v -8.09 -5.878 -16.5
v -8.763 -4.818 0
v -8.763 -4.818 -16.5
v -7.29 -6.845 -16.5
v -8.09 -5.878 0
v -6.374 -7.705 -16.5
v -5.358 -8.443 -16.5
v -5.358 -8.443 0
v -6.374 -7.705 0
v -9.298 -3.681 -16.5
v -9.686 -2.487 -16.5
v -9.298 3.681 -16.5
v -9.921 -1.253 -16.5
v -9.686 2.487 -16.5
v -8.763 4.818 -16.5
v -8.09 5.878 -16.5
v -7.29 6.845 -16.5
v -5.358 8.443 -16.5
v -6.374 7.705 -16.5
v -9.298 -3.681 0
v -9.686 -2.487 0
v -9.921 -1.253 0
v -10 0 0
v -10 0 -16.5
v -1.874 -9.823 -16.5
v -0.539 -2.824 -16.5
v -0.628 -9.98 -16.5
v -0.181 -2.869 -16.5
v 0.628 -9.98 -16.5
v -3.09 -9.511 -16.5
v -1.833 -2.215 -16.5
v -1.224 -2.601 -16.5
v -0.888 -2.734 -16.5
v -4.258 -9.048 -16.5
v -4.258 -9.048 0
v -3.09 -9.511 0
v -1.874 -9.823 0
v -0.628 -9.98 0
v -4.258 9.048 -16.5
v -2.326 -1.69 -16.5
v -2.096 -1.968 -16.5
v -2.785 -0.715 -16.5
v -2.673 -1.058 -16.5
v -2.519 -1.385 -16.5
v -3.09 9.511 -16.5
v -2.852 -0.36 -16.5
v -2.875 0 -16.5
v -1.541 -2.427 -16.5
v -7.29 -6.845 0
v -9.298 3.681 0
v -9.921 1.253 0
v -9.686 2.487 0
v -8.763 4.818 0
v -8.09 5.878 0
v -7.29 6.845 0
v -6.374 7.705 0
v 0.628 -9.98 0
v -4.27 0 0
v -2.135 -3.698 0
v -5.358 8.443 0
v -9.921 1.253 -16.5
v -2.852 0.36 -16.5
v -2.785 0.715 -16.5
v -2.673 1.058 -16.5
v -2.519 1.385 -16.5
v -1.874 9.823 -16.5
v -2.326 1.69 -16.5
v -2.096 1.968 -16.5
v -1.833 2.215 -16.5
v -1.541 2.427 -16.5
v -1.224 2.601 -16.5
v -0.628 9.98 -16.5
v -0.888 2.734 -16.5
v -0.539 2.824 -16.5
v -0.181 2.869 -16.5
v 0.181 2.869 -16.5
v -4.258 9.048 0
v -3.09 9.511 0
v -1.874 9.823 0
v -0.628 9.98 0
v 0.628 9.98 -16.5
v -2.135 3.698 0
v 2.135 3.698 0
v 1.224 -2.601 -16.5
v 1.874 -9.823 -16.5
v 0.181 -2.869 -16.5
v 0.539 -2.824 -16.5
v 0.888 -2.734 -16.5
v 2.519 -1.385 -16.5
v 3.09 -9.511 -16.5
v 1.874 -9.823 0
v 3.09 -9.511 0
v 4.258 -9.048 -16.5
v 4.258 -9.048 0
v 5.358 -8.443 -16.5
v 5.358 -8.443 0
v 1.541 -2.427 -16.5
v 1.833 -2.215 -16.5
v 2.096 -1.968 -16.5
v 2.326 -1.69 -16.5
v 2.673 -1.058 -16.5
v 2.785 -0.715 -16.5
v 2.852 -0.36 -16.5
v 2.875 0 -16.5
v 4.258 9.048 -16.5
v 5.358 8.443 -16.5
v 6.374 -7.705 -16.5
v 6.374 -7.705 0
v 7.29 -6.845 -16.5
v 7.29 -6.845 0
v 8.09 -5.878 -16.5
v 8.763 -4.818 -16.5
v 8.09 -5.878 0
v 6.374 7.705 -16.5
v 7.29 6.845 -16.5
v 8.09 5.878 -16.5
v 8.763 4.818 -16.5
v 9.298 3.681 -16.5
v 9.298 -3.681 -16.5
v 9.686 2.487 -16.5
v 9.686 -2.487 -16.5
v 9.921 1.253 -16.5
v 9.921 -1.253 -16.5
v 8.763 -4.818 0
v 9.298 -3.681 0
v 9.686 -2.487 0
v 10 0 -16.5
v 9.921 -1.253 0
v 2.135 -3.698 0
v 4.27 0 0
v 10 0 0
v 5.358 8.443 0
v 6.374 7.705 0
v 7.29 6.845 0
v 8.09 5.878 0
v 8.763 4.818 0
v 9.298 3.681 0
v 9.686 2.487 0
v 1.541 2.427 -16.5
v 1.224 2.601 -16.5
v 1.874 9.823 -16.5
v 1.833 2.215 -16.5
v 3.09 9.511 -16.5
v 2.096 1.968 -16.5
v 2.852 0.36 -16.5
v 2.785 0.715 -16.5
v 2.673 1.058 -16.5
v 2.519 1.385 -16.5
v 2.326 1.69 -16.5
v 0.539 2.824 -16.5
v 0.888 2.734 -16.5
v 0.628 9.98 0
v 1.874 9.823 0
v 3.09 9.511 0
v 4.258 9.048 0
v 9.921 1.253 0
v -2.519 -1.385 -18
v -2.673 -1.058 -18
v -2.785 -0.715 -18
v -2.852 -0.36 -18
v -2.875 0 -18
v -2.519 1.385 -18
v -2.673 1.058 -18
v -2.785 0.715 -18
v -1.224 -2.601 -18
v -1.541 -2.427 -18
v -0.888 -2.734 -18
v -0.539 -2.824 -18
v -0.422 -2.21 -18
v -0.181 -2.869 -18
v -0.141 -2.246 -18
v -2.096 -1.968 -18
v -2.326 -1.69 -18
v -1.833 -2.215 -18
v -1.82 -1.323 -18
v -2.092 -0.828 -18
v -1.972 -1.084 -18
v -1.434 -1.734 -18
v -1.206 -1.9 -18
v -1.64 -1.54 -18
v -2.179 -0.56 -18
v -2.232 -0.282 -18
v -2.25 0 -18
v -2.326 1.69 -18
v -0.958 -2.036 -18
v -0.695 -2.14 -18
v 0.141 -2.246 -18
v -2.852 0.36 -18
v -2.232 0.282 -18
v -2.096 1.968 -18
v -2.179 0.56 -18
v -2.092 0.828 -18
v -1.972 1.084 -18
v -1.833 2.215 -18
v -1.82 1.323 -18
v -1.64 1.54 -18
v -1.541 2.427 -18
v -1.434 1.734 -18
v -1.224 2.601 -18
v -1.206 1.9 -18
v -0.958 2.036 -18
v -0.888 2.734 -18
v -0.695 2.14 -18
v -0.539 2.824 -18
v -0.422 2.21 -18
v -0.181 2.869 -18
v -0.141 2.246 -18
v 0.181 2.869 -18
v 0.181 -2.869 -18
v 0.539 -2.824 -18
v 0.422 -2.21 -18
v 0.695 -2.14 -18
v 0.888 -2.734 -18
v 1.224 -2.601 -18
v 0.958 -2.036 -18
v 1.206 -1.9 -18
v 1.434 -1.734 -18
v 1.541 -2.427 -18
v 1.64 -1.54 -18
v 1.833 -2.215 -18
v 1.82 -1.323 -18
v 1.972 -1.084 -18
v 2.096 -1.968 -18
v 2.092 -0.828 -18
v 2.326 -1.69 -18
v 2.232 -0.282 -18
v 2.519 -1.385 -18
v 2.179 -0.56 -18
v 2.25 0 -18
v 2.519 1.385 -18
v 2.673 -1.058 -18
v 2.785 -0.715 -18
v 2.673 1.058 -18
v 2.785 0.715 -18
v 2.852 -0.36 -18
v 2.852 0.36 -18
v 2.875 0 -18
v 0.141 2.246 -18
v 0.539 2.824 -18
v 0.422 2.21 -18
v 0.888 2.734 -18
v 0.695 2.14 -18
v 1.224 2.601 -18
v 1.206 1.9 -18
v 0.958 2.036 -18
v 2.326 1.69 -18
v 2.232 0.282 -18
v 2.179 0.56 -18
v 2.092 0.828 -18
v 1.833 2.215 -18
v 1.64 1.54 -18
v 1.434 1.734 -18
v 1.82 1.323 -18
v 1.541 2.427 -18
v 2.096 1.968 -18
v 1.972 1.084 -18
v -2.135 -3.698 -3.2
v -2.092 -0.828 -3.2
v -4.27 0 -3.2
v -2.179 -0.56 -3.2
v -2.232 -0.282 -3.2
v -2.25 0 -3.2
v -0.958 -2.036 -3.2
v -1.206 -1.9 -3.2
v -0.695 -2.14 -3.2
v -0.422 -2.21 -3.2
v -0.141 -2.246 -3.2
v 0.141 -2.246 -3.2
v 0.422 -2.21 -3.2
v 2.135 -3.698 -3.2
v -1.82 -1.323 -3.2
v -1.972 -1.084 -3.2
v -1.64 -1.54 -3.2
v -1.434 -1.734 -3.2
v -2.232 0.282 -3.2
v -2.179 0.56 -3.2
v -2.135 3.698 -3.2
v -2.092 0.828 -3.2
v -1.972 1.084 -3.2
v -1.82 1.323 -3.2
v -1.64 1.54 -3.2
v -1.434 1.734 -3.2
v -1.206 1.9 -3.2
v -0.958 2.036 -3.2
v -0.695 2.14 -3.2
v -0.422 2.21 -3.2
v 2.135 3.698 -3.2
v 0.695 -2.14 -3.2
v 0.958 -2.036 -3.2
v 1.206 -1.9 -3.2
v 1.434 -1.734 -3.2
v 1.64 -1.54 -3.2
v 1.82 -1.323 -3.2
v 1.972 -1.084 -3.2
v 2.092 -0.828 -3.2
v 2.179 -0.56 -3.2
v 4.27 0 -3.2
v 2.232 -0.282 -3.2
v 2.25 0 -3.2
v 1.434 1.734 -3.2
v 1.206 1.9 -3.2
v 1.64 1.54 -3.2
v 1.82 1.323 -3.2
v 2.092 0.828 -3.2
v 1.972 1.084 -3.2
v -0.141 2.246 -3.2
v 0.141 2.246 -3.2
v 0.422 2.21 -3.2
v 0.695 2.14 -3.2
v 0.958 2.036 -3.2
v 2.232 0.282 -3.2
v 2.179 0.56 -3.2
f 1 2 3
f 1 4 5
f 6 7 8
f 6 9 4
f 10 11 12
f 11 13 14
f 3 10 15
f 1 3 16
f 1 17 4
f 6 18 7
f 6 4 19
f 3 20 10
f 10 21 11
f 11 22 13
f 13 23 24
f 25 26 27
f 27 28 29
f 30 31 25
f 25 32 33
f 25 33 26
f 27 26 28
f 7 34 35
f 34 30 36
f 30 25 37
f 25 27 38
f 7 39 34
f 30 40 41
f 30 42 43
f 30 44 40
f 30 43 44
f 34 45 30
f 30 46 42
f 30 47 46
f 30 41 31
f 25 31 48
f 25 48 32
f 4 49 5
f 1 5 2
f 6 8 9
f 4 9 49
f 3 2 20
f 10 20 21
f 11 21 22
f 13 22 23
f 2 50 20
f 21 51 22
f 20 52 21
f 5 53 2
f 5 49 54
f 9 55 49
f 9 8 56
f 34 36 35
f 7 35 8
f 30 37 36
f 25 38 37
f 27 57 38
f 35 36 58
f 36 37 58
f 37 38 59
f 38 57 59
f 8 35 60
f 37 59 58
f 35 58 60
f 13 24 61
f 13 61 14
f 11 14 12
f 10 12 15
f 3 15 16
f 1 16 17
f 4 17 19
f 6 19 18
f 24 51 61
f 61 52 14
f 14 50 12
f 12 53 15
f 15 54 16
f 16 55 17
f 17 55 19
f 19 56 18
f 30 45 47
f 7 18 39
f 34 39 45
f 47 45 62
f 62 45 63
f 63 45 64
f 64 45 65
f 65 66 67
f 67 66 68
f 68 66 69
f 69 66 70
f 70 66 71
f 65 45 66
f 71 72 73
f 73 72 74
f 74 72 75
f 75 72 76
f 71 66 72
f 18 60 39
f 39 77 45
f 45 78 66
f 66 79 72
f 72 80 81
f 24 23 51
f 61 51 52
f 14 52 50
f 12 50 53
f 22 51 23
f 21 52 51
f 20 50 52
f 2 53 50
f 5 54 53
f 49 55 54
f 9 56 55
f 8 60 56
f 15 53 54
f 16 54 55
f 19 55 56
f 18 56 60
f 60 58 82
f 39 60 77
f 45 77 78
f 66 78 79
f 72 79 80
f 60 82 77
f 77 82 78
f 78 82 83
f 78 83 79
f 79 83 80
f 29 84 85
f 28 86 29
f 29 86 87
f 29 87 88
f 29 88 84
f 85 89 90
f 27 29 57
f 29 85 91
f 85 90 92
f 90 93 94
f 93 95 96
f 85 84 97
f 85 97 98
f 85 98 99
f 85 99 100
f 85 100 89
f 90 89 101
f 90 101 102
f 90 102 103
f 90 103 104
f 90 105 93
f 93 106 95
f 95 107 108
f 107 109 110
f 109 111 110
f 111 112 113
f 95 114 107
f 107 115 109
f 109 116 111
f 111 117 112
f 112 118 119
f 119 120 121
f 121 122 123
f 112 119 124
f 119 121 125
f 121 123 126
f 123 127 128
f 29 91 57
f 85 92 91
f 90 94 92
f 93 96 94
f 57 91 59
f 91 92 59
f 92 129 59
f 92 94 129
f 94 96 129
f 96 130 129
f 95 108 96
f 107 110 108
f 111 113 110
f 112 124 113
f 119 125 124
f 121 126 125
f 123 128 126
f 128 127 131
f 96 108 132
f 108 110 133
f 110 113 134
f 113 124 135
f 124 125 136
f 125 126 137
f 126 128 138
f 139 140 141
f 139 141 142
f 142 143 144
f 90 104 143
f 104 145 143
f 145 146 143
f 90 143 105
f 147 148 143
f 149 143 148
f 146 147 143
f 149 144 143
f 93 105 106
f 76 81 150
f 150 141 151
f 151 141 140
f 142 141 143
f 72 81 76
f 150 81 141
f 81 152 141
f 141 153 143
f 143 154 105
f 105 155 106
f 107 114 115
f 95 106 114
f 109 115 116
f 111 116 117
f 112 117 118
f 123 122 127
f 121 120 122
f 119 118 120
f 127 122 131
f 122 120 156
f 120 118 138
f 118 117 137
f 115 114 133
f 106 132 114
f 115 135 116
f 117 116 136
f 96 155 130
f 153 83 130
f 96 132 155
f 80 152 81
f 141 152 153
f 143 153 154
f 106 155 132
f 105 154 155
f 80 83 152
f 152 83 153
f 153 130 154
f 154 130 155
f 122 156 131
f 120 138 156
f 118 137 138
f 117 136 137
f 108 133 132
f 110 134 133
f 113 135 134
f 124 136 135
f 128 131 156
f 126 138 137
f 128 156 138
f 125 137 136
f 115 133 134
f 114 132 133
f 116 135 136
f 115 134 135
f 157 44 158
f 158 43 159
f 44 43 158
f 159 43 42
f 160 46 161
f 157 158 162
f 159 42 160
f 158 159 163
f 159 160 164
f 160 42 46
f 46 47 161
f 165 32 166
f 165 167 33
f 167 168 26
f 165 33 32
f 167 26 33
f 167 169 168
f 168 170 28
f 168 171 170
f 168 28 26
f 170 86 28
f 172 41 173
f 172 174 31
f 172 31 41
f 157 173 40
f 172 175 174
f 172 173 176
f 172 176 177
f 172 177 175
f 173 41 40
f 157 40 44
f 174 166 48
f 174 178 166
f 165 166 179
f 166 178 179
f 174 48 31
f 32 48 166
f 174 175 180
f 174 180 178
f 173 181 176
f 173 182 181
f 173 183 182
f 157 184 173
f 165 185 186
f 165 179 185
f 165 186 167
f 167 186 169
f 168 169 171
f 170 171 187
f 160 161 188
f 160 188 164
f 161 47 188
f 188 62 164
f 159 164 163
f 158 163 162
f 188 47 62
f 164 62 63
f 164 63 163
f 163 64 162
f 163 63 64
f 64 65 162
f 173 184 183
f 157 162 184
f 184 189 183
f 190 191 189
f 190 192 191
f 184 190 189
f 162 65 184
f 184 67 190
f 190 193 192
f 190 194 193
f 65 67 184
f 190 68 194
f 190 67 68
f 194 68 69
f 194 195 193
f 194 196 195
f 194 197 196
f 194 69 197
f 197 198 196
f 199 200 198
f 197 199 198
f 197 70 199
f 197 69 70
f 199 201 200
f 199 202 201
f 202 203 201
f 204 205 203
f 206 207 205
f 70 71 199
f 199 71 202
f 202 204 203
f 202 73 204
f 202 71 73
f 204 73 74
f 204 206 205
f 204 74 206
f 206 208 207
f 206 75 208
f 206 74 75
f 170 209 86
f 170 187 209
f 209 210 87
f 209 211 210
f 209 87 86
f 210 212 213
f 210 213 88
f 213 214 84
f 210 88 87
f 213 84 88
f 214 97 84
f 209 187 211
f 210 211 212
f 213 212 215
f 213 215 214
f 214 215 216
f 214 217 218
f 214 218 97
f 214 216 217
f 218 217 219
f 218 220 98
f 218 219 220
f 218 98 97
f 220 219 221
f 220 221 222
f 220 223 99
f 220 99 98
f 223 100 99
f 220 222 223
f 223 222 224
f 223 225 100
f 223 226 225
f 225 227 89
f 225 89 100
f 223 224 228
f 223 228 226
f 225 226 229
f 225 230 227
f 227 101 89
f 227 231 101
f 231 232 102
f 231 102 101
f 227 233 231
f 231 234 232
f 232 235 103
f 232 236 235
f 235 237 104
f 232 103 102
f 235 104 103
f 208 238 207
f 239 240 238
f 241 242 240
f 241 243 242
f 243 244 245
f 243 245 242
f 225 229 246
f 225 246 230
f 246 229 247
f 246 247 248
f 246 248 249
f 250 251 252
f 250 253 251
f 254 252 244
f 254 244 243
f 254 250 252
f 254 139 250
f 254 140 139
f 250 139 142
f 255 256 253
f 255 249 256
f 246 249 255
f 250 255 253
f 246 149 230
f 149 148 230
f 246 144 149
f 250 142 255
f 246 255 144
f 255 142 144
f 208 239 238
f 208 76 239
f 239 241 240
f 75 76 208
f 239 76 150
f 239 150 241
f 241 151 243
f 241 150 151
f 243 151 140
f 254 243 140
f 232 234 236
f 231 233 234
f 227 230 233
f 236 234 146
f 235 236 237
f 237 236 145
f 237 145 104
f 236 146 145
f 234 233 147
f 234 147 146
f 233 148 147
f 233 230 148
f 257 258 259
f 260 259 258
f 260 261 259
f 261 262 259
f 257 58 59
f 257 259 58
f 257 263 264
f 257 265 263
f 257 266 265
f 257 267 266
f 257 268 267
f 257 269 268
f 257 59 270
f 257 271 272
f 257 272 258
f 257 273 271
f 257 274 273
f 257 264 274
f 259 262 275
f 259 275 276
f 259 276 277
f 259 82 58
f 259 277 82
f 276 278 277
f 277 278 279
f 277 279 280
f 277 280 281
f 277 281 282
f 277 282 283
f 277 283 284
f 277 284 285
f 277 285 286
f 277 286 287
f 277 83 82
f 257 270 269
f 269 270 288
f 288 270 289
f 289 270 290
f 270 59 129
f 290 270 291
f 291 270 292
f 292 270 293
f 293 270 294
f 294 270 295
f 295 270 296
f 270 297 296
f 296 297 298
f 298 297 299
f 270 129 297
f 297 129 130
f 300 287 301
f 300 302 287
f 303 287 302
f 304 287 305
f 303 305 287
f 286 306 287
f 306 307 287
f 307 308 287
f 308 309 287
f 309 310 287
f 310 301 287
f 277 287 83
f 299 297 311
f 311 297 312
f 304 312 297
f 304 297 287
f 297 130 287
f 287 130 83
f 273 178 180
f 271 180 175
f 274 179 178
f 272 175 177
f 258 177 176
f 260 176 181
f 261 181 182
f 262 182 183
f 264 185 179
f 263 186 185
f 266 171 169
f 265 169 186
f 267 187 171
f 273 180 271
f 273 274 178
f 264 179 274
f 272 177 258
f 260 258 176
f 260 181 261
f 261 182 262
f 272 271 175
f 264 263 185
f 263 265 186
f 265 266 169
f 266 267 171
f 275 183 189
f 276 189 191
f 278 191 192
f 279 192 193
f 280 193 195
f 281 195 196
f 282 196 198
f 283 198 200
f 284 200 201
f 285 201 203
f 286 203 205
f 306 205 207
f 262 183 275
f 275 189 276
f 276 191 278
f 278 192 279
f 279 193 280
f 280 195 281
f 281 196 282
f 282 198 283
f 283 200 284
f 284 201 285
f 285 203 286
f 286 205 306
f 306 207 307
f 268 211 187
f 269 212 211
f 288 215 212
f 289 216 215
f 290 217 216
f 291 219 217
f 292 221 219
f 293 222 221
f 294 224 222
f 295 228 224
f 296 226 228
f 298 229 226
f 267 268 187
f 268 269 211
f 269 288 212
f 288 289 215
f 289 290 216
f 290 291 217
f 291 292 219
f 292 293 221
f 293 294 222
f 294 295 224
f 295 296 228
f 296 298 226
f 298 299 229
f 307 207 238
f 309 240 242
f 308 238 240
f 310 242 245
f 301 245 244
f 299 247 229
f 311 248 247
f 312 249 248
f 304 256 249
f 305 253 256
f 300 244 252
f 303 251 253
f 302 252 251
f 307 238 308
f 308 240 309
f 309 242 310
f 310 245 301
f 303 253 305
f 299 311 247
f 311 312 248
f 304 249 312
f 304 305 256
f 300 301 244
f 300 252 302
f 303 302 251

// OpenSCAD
$fn = 50;


difference() {
	union() {
		translate(v = [0, 0, -16.5000000000]) {
			cylinder(h = 16.5000000000, r = 10.0000000000);
		}
		#translate(v = [0, 0, -18.0000000000]) {
			cylinder(h = 18, r = 2.8750000000);
		}
	}
	union() {
		translate(v = [0, 0, 0]) {
			rotate(a = [0, 0, 0]) {
				difference() {
					union() {
						translate(v = [0, 0, -3.2000000000]) {
							linear_extrude(height = 3.2000000000) {
								polygon(points = [[4.2698000000, 0.0000000000], [2.1349000000, 3.6977552691], [-2.1349000000, 3.6977552691], [-4.2698000000, 0.0000000000], [-2.1349000000, -3.6977552691], [2.1349000000, -3.6977552691]]);
							}
						}
					}
					union();
				}
			}
		}
		#translate(v = [0, 0, -100.0000000000]) {
			cylinder(h = 200, r = 2.2500000000);
		}
	}
}
